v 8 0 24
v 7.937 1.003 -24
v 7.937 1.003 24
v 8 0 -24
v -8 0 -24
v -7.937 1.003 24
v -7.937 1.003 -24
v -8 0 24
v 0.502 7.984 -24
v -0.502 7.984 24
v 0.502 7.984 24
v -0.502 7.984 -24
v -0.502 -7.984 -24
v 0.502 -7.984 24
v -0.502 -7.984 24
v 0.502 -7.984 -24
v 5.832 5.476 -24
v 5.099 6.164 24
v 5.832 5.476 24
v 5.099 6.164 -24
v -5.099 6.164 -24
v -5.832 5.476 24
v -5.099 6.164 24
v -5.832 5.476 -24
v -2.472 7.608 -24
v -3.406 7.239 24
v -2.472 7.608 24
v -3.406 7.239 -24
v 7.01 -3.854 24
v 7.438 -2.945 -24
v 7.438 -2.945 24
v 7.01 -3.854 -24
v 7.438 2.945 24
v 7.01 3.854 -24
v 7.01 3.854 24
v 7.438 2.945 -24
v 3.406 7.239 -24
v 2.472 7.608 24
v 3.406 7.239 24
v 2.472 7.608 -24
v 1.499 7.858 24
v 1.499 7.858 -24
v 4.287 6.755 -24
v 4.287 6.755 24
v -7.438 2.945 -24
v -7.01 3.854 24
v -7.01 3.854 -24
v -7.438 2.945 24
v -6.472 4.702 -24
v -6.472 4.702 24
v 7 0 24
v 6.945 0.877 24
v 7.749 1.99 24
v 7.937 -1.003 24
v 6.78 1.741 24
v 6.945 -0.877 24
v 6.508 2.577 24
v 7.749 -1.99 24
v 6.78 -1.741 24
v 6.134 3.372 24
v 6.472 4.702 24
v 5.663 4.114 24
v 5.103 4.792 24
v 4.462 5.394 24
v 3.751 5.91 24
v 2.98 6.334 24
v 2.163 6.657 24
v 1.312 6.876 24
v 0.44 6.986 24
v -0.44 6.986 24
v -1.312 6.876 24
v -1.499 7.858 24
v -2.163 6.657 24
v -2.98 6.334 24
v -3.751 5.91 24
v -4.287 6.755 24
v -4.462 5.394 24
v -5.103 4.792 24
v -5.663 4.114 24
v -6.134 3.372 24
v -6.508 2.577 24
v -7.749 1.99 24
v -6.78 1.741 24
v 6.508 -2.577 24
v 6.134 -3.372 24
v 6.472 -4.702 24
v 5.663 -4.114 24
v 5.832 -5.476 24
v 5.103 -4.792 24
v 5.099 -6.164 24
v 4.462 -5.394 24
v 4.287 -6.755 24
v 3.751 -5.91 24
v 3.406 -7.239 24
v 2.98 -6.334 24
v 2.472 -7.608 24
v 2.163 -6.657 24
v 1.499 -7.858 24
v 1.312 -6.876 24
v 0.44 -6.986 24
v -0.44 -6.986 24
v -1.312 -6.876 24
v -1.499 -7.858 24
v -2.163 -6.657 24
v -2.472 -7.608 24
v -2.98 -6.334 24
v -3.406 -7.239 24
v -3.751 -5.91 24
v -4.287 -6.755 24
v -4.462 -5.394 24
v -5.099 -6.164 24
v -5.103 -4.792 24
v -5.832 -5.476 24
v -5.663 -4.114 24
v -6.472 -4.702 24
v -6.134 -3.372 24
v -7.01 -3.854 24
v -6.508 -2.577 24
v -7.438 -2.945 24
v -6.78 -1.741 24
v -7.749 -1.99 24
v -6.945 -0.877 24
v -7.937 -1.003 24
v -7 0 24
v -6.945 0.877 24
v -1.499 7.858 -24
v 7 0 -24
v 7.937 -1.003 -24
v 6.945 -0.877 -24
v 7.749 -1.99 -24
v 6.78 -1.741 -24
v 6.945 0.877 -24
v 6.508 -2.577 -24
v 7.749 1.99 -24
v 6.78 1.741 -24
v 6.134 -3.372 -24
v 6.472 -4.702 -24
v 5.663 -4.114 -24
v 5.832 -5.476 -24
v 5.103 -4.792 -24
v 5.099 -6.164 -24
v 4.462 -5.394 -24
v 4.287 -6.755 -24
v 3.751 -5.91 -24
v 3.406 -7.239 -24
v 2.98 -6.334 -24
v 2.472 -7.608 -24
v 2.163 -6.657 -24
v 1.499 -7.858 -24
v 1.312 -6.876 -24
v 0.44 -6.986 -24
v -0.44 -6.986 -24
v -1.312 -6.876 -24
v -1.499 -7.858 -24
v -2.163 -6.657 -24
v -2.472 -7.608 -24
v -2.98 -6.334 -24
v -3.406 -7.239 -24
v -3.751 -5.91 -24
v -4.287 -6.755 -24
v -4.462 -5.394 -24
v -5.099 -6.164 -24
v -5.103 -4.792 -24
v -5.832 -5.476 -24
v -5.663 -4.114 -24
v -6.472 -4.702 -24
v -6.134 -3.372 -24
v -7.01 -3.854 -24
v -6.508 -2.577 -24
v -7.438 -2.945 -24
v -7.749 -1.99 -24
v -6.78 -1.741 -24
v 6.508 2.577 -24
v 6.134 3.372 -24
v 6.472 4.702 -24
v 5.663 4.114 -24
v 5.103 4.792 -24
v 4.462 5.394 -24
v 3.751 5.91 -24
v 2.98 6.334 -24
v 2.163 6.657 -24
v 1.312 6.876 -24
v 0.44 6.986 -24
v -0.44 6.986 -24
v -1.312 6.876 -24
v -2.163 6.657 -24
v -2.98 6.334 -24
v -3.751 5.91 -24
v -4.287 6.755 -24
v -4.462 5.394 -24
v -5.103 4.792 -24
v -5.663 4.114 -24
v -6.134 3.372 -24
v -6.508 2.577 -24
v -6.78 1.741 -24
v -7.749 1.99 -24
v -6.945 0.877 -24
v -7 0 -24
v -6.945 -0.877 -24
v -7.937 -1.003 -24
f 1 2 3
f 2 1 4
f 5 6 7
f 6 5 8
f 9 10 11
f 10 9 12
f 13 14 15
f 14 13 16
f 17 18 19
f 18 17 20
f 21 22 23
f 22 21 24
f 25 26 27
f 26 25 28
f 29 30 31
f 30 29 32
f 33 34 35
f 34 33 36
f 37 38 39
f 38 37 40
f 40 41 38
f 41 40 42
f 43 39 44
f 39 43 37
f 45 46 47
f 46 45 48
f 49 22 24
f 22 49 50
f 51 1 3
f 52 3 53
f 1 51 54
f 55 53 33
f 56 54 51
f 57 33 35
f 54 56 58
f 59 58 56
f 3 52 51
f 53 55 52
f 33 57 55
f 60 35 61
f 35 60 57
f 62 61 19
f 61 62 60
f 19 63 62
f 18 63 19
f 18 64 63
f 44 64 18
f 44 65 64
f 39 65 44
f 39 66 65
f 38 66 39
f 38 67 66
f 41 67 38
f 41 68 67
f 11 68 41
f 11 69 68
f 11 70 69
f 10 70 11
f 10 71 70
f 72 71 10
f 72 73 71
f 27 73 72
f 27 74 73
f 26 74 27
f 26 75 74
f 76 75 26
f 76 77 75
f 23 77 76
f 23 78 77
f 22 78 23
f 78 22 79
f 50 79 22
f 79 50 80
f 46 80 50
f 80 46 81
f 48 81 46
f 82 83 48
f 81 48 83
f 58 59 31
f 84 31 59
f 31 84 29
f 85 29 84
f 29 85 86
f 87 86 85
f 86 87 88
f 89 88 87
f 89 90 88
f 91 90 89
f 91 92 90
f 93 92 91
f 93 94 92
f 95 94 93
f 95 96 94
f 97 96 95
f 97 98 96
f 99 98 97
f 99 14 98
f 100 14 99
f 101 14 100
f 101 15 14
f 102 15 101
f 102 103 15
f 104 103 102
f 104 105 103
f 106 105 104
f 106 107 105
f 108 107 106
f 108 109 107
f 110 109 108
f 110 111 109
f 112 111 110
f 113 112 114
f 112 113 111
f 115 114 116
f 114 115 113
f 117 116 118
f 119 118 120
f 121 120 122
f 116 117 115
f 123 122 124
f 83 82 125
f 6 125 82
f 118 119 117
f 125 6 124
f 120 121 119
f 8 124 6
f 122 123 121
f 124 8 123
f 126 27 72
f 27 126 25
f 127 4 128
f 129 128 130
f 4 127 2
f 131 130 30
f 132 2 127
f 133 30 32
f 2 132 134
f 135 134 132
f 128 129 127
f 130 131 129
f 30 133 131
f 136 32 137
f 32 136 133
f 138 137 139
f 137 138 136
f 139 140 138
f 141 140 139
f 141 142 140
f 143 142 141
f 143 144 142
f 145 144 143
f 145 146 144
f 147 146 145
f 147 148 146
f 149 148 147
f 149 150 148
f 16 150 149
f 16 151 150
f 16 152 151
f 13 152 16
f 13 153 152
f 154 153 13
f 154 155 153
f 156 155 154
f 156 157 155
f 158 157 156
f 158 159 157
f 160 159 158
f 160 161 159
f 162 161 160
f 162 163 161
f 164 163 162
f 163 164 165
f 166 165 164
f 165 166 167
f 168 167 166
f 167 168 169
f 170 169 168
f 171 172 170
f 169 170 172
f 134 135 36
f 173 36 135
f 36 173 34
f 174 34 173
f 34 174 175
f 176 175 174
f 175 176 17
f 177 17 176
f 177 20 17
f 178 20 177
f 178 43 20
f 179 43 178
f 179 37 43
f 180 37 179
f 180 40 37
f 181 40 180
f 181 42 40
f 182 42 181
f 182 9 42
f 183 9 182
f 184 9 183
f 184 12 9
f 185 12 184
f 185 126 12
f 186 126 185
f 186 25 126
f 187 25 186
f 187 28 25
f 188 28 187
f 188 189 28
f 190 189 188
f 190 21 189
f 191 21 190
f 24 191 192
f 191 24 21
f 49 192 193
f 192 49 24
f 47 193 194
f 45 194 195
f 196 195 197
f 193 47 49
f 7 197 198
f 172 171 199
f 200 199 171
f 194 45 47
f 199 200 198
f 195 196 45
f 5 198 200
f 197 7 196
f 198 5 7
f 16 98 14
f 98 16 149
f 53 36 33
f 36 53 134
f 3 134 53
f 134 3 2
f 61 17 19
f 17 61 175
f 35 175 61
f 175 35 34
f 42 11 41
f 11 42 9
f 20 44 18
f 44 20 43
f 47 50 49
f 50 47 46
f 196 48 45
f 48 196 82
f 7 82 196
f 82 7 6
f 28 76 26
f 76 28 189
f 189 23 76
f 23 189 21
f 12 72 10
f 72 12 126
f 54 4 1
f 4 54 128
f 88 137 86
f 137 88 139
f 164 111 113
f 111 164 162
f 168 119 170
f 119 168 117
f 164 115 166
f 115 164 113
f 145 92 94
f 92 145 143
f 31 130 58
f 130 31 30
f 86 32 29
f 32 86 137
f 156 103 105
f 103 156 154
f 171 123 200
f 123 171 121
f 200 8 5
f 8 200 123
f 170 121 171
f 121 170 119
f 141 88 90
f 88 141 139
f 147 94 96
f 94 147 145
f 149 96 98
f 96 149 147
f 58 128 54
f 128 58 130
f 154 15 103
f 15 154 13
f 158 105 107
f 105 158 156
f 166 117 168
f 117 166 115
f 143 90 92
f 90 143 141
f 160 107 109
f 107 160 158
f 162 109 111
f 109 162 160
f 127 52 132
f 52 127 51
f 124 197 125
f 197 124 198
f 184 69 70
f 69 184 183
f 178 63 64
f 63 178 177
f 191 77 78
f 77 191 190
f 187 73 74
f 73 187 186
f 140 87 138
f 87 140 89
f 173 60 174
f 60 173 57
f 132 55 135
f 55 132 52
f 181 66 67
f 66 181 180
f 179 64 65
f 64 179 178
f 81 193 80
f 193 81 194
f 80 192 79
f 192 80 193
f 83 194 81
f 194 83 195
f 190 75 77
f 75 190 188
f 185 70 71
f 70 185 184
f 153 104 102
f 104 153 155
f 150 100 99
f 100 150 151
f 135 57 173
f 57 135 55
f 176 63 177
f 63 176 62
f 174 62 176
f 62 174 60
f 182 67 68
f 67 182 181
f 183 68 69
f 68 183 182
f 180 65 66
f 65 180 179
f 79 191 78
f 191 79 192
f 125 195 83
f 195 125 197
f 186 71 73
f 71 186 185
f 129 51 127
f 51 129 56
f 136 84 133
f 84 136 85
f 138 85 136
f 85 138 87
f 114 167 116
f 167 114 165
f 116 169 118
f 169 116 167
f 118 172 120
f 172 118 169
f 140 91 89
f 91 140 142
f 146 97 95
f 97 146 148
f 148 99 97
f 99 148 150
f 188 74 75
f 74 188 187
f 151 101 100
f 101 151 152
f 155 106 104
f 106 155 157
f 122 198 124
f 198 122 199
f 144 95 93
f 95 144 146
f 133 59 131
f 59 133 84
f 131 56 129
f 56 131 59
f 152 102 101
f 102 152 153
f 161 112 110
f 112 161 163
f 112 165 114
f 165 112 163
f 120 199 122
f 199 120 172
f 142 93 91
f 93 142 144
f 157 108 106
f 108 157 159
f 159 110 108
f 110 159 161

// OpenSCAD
$fn = 50;


difference() {
	union() {
		translate(v = [0, 0, -24.0000000000]) {
			cylinder(h = 48, r = 8.0000000000);
		}
	}
	union() {
		translate(v = [0, 0, -100.0000000000]) {
			cylinder(h = 200, r = 7);
		}
	}
}
